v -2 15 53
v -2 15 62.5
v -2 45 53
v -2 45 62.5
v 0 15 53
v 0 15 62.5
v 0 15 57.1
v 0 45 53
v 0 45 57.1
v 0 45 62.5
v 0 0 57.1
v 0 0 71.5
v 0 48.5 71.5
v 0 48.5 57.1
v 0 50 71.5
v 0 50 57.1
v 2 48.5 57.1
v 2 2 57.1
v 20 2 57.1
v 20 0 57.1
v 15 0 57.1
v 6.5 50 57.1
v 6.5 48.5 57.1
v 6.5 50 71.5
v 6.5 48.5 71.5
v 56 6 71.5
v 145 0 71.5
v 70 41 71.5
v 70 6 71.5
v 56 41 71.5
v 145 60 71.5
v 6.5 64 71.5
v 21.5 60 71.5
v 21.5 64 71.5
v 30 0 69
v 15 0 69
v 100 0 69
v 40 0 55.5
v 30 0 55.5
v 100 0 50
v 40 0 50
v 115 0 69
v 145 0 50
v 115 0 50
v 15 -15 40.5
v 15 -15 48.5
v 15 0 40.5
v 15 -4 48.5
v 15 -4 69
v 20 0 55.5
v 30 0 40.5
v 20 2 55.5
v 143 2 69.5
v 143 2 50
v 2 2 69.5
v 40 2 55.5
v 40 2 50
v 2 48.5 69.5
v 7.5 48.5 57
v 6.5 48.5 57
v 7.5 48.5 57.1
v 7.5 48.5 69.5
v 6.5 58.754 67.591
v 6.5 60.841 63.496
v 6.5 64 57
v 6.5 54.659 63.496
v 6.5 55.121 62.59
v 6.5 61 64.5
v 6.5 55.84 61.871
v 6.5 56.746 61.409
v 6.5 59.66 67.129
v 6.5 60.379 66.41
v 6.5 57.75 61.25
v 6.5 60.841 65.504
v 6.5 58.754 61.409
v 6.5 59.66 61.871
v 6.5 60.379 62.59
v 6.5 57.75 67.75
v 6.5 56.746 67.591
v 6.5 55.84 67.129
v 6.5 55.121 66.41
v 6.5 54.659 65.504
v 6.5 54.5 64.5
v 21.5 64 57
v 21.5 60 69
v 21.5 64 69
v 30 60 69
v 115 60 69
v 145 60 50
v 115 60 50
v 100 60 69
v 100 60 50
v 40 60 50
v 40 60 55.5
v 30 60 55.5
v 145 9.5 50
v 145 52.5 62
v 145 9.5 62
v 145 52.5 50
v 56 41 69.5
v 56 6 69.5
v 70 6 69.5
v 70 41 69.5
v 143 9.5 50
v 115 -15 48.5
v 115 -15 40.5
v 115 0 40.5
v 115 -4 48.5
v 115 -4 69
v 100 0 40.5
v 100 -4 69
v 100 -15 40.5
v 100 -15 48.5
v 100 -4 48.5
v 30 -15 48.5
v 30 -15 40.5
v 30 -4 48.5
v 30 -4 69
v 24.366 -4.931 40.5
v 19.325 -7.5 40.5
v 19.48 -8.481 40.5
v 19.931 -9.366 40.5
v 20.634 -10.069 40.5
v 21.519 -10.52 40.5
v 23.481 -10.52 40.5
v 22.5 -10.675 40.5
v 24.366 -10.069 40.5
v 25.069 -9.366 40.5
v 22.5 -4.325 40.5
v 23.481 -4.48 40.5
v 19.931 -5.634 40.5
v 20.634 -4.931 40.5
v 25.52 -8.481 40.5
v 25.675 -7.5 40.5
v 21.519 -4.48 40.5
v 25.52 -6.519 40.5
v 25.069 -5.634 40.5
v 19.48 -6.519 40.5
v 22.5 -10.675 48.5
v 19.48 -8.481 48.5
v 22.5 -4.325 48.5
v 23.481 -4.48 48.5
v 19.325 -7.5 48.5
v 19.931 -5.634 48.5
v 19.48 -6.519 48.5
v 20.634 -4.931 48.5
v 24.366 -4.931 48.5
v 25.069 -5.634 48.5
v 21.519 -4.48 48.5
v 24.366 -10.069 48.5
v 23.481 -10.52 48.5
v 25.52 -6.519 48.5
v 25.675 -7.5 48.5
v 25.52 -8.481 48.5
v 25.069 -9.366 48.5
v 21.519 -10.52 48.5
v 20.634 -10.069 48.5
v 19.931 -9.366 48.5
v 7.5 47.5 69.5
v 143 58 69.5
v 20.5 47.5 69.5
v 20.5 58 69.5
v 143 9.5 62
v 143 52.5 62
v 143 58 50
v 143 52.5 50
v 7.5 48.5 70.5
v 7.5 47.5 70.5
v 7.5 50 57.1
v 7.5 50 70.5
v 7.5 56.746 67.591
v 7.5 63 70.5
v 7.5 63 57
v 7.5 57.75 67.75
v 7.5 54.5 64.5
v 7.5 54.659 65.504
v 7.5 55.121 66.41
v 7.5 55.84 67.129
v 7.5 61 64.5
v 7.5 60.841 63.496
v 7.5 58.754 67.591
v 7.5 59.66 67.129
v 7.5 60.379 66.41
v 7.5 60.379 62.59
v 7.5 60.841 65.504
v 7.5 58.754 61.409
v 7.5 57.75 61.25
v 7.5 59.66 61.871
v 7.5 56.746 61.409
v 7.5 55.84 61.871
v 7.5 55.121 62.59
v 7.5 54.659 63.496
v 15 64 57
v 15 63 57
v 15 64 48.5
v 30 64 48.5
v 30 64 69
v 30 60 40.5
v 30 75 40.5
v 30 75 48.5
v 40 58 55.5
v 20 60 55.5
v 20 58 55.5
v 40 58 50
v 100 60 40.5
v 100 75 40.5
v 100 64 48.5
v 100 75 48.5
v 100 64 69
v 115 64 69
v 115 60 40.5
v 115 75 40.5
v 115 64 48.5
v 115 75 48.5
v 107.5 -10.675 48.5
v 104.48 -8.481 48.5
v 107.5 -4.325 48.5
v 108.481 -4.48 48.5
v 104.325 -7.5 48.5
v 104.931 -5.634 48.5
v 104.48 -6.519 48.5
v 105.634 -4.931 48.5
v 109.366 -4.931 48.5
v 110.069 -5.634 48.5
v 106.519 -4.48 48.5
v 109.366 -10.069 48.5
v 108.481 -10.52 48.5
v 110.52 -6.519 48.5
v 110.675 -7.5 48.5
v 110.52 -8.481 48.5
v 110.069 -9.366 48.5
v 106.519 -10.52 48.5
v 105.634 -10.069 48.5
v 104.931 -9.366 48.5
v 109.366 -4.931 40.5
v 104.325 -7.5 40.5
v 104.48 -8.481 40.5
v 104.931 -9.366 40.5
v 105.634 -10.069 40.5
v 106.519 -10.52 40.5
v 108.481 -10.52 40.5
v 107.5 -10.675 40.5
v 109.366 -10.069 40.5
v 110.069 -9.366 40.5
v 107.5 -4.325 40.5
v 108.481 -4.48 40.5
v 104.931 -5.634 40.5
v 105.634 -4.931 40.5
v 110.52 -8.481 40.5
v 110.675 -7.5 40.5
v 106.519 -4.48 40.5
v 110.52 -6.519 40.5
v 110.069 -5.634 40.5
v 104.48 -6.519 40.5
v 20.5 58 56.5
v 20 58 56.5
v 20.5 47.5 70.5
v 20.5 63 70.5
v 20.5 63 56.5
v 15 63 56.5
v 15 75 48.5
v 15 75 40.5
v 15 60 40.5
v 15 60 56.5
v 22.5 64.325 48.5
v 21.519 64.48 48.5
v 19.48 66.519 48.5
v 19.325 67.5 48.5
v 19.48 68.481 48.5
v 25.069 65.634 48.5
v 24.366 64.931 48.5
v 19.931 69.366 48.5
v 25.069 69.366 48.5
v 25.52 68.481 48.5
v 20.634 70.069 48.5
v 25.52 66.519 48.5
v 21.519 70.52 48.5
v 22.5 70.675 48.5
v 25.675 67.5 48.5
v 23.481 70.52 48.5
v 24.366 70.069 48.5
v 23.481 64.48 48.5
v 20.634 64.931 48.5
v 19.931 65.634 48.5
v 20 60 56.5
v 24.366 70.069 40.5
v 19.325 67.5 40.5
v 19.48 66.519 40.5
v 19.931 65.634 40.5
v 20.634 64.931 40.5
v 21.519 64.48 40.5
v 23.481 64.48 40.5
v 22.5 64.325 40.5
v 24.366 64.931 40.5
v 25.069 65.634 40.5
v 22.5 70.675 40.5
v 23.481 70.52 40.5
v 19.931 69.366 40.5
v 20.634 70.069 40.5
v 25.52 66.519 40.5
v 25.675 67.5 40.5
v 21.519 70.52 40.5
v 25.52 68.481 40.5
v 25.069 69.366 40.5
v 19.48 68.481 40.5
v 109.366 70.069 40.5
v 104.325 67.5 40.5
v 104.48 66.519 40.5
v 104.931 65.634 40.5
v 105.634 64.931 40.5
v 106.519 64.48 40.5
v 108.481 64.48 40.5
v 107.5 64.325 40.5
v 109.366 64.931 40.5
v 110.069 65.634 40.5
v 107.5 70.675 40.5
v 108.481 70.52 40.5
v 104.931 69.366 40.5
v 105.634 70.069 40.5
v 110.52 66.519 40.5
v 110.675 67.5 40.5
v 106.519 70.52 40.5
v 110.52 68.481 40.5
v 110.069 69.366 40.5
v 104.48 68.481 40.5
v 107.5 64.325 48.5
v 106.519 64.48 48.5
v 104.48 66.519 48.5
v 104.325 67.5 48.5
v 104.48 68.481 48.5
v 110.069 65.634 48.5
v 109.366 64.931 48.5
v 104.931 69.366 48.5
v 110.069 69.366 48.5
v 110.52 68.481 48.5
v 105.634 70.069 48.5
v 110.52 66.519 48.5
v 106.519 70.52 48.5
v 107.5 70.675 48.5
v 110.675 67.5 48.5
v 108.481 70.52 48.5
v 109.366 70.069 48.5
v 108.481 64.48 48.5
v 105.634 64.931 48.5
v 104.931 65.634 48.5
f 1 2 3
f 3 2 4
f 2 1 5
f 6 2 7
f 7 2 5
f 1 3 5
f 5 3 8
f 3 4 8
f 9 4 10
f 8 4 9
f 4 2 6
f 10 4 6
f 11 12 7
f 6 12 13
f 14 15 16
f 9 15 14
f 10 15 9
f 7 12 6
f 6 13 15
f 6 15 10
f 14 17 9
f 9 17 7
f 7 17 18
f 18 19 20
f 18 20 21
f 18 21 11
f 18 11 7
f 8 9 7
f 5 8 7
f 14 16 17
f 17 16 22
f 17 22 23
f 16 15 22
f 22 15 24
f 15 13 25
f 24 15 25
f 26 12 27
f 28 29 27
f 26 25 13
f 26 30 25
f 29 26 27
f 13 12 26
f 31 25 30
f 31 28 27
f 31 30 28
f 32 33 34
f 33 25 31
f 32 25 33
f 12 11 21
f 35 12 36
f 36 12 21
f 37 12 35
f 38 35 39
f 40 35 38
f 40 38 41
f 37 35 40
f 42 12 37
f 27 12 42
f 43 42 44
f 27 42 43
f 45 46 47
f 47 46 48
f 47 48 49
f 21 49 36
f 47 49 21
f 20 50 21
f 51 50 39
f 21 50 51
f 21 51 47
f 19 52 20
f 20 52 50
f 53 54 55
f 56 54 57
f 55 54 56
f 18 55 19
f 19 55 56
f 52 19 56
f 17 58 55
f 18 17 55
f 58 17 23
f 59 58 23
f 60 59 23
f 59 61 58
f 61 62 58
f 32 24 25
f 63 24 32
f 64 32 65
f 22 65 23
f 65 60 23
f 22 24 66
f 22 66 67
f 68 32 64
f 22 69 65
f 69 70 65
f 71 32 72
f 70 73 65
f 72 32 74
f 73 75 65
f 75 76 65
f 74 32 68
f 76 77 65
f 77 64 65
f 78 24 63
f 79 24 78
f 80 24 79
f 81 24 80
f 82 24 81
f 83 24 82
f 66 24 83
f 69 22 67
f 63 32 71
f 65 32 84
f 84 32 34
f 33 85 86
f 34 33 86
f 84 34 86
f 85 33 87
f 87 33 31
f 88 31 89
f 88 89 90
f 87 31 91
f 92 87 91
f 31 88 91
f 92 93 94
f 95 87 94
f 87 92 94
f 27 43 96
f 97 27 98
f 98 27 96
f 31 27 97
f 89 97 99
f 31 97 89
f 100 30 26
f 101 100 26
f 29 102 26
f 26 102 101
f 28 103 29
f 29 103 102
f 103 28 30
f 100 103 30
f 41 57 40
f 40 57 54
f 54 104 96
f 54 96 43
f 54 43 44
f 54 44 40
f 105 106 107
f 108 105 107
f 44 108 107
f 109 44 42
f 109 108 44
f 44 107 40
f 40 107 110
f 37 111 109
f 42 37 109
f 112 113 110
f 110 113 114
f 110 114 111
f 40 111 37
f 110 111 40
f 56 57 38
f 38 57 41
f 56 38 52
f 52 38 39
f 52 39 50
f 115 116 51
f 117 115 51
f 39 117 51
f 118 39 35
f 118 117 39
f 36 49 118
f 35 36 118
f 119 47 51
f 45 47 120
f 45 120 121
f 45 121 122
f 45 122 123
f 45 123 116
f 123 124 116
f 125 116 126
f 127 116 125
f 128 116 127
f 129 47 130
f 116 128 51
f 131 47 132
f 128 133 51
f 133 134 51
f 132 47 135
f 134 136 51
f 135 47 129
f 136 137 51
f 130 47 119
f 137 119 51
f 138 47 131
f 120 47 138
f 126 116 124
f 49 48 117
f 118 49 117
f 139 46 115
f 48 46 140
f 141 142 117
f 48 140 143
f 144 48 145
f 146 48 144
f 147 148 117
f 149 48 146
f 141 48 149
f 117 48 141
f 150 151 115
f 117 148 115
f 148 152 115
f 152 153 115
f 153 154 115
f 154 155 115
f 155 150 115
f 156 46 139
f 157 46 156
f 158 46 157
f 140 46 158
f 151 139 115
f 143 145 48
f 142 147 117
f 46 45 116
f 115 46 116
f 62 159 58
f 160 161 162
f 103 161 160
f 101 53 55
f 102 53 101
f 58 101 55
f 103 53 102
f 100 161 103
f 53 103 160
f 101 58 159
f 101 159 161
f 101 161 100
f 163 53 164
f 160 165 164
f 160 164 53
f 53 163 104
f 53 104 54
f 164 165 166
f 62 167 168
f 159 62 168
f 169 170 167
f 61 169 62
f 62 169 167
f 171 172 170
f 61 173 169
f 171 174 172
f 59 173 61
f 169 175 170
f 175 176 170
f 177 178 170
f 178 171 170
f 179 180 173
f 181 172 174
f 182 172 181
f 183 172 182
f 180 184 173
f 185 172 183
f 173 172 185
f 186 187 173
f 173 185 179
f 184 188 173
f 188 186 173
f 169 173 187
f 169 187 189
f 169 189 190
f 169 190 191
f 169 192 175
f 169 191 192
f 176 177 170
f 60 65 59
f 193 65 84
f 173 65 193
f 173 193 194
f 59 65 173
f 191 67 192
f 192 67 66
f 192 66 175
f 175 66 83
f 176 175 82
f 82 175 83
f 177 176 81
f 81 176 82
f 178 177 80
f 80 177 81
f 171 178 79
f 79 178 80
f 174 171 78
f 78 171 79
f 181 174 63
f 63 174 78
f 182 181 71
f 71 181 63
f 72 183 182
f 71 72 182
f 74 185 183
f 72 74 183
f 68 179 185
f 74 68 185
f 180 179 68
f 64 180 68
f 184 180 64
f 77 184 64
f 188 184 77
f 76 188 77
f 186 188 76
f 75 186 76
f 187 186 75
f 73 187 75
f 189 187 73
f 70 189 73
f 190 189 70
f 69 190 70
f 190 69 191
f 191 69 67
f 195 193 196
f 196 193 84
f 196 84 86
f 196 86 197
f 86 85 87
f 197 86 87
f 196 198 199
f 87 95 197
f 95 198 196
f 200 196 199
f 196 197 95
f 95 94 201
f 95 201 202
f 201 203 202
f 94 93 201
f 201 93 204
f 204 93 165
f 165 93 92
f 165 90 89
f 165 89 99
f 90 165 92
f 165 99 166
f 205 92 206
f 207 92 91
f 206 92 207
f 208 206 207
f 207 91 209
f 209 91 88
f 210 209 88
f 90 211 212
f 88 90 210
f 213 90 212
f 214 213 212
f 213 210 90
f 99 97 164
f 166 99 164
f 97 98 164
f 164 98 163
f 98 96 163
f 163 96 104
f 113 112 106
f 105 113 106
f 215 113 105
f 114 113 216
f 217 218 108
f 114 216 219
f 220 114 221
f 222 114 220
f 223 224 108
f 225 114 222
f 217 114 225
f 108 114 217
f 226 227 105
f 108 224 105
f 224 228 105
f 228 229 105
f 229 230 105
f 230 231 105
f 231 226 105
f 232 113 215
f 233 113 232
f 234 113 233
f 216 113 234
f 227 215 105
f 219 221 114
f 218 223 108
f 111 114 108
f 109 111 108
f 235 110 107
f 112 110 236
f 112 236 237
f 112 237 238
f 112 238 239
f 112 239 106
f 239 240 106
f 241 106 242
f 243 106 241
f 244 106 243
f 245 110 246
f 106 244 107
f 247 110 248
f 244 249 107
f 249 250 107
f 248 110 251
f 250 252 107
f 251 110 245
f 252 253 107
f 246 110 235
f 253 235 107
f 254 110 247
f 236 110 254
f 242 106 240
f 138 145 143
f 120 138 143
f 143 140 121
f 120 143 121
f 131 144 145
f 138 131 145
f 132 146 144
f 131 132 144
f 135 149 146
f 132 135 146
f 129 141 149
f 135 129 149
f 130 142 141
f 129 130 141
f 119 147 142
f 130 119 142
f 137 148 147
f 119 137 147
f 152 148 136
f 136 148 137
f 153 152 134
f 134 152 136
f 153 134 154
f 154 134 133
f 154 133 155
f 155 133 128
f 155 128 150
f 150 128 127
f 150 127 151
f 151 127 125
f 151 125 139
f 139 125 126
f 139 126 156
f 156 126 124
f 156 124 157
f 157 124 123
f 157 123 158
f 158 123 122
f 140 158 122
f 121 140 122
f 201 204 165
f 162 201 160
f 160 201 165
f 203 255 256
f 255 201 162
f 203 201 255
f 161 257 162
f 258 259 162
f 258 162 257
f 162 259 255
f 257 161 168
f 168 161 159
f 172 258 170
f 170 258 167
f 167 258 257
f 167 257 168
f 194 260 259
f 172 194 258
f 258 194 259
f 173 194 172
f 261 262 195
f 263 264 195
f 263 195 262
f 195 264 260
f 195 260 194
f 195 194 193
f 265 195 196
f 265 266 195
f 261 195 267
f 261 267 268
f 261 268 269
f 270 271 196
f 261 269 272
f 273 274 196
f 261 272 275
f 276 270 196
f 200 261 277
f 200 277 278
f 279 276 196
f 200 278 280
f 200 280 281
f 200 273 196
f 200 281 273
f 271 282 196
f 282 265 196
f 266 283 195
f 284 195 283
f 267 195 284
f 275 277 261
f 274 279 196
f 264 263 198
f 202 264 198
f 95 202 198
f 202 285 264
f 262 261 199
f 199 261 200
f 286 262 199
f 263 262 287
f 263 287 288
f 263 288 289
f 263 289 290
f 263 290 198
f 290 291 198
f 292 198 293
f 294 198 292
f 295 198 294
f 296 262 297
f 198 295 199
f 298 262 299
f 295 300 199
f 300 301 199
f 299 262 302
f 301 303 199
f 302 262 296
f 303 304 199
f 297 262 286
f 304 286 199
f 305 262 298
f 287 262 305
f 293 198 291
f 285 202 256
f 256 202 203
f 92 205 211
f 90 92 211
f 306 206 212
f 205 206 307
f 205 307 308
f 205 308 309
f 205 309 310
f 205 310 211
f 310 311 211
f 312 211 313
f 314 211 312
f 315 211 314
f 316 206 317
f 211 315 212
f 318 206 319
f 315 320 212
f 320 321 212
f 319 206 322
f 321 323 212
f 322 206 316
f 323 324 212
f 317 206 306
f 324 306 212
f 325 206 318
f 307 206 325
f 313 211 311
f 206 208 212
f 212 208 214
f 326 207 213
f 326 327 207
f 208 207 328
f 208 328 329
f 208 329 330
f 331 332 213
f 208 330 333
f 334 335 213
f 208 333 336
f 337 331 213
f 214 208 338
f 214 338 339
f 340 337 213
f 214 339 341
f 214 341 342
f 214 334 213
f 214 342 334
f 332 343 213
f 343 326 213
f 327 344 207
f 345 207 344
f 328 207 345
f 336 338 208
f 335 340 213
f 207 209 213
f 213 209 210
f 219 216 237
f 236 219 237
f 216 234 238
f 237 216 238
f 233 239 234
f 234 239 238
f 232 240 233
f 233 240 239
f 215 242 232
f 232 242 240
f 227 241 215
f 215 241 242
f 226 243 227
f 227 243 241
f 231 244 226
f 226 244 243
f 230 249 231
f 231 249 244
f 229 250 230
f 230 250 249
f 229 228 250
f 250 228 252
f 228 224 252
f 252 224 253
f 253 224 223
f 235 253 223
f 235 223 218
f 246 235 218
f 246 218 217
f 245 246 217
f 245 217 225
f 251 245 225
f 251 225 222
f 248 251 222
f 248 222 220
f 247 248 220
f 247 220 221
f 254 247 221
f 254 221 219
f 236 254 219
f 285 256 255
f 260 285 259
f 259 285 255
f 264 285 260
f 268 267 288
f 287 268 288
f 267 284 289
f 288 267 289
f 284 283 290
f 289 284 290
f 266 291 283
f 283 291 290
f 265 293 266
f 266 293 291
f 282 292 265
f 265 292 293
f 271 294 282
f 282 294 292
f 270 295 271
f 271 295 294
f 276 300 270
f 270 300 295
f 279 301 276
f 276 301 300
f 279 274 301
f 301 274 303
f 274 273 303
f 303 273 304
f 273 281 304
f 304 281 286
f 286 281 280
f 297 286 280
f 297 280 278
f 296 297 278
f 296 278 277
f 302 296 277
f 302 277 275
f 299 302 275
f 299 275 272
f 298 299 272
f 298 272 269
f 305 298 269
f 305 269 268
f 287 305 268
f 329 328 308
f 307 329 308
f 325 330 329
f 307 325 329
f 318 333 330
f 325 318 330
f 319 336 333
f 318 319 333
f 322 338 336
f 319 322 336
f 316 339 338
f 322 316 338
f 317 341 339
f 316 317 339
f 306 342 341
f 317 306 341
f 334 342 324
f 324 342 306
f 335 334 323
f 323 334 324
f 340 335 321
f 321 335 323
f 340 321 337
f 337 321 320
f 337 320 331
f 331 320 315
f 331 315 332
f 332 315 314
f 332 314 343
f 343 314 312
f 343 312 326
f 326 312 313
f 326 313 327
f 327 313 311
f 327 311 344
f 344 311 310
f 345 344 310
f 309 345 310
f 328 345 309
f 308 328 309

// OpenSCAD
module caseTop(){
$fn = 20;

length = 145; 
width = 60;
height = 21.5;

difference(){
	cube([length, width, height]);
	translate([2,2,-1])cube([length-4, width-4, height-1]);
	translate([-1,-1,-1])cube([21, 71, 8.1]);
	translate([-1,-1,-1])cube([41, 71, 6.5]);
	translate([length-3, width-7.5-43, -1])cube([10, 43, 13]);
	translate([56, 6, 0])cube([14, 35, 50]);
	translate([-1, width-11.5, height-15])cube([7.5, 13.5, 20]);
	//translate([0, width- 7.75, height-7])rotate([0,90,0])cylinder(d=9.5, h = 10);
	translate([7.5, width-12.5, height-15])cube([13, 15.5, 14]);
	translate([0, width- 2.25, height-7])rotate([0,90,0])cylinder(d=6.5, h = 10);
	

}

translate([-2, width/4, 3])cube([2, width/2, height-12]);
difference(){
	translate([6.5, width-11.5, height-14.5])cube([15,15.5,14.5]);
	translate([7.5, width-12.5, height-15])cube([13, 15.5, 14]);
	translate([8.5, width-13, height-15])cube([17, 11, 14]); 
	translate([0, width- 2.25, height-7])rotate([0,90,0])cylinder(d=6.5, h = 10);
}
  
translate([0, width-11.5, height-14.4])cube([7.5, 1.5, height-7.1]);	

module foot(){
	translate([0, 11, 0])cube([15, 4, 28.5]);
	difference(){
		cube([15,15,8]);
		translate([7.5,7.5,-0.25])cylinder(d=6.35,8.5);
	}
}

//feet
translate([15, -15, -9.5])foot();
translate([100, -15, -9.5])foot();
difference(){
rotate([0,0,180])translate([-30, -75, -9.5])foot();
translate([7.5, width-12.5, height-15])cube([13, 15.5, 14]);
}
rotate([0,0,180])translate([-115, -75, -9.5])foot();
}

translate([0, 0, 50])caseTop();
//include<case_bottom.scad>
